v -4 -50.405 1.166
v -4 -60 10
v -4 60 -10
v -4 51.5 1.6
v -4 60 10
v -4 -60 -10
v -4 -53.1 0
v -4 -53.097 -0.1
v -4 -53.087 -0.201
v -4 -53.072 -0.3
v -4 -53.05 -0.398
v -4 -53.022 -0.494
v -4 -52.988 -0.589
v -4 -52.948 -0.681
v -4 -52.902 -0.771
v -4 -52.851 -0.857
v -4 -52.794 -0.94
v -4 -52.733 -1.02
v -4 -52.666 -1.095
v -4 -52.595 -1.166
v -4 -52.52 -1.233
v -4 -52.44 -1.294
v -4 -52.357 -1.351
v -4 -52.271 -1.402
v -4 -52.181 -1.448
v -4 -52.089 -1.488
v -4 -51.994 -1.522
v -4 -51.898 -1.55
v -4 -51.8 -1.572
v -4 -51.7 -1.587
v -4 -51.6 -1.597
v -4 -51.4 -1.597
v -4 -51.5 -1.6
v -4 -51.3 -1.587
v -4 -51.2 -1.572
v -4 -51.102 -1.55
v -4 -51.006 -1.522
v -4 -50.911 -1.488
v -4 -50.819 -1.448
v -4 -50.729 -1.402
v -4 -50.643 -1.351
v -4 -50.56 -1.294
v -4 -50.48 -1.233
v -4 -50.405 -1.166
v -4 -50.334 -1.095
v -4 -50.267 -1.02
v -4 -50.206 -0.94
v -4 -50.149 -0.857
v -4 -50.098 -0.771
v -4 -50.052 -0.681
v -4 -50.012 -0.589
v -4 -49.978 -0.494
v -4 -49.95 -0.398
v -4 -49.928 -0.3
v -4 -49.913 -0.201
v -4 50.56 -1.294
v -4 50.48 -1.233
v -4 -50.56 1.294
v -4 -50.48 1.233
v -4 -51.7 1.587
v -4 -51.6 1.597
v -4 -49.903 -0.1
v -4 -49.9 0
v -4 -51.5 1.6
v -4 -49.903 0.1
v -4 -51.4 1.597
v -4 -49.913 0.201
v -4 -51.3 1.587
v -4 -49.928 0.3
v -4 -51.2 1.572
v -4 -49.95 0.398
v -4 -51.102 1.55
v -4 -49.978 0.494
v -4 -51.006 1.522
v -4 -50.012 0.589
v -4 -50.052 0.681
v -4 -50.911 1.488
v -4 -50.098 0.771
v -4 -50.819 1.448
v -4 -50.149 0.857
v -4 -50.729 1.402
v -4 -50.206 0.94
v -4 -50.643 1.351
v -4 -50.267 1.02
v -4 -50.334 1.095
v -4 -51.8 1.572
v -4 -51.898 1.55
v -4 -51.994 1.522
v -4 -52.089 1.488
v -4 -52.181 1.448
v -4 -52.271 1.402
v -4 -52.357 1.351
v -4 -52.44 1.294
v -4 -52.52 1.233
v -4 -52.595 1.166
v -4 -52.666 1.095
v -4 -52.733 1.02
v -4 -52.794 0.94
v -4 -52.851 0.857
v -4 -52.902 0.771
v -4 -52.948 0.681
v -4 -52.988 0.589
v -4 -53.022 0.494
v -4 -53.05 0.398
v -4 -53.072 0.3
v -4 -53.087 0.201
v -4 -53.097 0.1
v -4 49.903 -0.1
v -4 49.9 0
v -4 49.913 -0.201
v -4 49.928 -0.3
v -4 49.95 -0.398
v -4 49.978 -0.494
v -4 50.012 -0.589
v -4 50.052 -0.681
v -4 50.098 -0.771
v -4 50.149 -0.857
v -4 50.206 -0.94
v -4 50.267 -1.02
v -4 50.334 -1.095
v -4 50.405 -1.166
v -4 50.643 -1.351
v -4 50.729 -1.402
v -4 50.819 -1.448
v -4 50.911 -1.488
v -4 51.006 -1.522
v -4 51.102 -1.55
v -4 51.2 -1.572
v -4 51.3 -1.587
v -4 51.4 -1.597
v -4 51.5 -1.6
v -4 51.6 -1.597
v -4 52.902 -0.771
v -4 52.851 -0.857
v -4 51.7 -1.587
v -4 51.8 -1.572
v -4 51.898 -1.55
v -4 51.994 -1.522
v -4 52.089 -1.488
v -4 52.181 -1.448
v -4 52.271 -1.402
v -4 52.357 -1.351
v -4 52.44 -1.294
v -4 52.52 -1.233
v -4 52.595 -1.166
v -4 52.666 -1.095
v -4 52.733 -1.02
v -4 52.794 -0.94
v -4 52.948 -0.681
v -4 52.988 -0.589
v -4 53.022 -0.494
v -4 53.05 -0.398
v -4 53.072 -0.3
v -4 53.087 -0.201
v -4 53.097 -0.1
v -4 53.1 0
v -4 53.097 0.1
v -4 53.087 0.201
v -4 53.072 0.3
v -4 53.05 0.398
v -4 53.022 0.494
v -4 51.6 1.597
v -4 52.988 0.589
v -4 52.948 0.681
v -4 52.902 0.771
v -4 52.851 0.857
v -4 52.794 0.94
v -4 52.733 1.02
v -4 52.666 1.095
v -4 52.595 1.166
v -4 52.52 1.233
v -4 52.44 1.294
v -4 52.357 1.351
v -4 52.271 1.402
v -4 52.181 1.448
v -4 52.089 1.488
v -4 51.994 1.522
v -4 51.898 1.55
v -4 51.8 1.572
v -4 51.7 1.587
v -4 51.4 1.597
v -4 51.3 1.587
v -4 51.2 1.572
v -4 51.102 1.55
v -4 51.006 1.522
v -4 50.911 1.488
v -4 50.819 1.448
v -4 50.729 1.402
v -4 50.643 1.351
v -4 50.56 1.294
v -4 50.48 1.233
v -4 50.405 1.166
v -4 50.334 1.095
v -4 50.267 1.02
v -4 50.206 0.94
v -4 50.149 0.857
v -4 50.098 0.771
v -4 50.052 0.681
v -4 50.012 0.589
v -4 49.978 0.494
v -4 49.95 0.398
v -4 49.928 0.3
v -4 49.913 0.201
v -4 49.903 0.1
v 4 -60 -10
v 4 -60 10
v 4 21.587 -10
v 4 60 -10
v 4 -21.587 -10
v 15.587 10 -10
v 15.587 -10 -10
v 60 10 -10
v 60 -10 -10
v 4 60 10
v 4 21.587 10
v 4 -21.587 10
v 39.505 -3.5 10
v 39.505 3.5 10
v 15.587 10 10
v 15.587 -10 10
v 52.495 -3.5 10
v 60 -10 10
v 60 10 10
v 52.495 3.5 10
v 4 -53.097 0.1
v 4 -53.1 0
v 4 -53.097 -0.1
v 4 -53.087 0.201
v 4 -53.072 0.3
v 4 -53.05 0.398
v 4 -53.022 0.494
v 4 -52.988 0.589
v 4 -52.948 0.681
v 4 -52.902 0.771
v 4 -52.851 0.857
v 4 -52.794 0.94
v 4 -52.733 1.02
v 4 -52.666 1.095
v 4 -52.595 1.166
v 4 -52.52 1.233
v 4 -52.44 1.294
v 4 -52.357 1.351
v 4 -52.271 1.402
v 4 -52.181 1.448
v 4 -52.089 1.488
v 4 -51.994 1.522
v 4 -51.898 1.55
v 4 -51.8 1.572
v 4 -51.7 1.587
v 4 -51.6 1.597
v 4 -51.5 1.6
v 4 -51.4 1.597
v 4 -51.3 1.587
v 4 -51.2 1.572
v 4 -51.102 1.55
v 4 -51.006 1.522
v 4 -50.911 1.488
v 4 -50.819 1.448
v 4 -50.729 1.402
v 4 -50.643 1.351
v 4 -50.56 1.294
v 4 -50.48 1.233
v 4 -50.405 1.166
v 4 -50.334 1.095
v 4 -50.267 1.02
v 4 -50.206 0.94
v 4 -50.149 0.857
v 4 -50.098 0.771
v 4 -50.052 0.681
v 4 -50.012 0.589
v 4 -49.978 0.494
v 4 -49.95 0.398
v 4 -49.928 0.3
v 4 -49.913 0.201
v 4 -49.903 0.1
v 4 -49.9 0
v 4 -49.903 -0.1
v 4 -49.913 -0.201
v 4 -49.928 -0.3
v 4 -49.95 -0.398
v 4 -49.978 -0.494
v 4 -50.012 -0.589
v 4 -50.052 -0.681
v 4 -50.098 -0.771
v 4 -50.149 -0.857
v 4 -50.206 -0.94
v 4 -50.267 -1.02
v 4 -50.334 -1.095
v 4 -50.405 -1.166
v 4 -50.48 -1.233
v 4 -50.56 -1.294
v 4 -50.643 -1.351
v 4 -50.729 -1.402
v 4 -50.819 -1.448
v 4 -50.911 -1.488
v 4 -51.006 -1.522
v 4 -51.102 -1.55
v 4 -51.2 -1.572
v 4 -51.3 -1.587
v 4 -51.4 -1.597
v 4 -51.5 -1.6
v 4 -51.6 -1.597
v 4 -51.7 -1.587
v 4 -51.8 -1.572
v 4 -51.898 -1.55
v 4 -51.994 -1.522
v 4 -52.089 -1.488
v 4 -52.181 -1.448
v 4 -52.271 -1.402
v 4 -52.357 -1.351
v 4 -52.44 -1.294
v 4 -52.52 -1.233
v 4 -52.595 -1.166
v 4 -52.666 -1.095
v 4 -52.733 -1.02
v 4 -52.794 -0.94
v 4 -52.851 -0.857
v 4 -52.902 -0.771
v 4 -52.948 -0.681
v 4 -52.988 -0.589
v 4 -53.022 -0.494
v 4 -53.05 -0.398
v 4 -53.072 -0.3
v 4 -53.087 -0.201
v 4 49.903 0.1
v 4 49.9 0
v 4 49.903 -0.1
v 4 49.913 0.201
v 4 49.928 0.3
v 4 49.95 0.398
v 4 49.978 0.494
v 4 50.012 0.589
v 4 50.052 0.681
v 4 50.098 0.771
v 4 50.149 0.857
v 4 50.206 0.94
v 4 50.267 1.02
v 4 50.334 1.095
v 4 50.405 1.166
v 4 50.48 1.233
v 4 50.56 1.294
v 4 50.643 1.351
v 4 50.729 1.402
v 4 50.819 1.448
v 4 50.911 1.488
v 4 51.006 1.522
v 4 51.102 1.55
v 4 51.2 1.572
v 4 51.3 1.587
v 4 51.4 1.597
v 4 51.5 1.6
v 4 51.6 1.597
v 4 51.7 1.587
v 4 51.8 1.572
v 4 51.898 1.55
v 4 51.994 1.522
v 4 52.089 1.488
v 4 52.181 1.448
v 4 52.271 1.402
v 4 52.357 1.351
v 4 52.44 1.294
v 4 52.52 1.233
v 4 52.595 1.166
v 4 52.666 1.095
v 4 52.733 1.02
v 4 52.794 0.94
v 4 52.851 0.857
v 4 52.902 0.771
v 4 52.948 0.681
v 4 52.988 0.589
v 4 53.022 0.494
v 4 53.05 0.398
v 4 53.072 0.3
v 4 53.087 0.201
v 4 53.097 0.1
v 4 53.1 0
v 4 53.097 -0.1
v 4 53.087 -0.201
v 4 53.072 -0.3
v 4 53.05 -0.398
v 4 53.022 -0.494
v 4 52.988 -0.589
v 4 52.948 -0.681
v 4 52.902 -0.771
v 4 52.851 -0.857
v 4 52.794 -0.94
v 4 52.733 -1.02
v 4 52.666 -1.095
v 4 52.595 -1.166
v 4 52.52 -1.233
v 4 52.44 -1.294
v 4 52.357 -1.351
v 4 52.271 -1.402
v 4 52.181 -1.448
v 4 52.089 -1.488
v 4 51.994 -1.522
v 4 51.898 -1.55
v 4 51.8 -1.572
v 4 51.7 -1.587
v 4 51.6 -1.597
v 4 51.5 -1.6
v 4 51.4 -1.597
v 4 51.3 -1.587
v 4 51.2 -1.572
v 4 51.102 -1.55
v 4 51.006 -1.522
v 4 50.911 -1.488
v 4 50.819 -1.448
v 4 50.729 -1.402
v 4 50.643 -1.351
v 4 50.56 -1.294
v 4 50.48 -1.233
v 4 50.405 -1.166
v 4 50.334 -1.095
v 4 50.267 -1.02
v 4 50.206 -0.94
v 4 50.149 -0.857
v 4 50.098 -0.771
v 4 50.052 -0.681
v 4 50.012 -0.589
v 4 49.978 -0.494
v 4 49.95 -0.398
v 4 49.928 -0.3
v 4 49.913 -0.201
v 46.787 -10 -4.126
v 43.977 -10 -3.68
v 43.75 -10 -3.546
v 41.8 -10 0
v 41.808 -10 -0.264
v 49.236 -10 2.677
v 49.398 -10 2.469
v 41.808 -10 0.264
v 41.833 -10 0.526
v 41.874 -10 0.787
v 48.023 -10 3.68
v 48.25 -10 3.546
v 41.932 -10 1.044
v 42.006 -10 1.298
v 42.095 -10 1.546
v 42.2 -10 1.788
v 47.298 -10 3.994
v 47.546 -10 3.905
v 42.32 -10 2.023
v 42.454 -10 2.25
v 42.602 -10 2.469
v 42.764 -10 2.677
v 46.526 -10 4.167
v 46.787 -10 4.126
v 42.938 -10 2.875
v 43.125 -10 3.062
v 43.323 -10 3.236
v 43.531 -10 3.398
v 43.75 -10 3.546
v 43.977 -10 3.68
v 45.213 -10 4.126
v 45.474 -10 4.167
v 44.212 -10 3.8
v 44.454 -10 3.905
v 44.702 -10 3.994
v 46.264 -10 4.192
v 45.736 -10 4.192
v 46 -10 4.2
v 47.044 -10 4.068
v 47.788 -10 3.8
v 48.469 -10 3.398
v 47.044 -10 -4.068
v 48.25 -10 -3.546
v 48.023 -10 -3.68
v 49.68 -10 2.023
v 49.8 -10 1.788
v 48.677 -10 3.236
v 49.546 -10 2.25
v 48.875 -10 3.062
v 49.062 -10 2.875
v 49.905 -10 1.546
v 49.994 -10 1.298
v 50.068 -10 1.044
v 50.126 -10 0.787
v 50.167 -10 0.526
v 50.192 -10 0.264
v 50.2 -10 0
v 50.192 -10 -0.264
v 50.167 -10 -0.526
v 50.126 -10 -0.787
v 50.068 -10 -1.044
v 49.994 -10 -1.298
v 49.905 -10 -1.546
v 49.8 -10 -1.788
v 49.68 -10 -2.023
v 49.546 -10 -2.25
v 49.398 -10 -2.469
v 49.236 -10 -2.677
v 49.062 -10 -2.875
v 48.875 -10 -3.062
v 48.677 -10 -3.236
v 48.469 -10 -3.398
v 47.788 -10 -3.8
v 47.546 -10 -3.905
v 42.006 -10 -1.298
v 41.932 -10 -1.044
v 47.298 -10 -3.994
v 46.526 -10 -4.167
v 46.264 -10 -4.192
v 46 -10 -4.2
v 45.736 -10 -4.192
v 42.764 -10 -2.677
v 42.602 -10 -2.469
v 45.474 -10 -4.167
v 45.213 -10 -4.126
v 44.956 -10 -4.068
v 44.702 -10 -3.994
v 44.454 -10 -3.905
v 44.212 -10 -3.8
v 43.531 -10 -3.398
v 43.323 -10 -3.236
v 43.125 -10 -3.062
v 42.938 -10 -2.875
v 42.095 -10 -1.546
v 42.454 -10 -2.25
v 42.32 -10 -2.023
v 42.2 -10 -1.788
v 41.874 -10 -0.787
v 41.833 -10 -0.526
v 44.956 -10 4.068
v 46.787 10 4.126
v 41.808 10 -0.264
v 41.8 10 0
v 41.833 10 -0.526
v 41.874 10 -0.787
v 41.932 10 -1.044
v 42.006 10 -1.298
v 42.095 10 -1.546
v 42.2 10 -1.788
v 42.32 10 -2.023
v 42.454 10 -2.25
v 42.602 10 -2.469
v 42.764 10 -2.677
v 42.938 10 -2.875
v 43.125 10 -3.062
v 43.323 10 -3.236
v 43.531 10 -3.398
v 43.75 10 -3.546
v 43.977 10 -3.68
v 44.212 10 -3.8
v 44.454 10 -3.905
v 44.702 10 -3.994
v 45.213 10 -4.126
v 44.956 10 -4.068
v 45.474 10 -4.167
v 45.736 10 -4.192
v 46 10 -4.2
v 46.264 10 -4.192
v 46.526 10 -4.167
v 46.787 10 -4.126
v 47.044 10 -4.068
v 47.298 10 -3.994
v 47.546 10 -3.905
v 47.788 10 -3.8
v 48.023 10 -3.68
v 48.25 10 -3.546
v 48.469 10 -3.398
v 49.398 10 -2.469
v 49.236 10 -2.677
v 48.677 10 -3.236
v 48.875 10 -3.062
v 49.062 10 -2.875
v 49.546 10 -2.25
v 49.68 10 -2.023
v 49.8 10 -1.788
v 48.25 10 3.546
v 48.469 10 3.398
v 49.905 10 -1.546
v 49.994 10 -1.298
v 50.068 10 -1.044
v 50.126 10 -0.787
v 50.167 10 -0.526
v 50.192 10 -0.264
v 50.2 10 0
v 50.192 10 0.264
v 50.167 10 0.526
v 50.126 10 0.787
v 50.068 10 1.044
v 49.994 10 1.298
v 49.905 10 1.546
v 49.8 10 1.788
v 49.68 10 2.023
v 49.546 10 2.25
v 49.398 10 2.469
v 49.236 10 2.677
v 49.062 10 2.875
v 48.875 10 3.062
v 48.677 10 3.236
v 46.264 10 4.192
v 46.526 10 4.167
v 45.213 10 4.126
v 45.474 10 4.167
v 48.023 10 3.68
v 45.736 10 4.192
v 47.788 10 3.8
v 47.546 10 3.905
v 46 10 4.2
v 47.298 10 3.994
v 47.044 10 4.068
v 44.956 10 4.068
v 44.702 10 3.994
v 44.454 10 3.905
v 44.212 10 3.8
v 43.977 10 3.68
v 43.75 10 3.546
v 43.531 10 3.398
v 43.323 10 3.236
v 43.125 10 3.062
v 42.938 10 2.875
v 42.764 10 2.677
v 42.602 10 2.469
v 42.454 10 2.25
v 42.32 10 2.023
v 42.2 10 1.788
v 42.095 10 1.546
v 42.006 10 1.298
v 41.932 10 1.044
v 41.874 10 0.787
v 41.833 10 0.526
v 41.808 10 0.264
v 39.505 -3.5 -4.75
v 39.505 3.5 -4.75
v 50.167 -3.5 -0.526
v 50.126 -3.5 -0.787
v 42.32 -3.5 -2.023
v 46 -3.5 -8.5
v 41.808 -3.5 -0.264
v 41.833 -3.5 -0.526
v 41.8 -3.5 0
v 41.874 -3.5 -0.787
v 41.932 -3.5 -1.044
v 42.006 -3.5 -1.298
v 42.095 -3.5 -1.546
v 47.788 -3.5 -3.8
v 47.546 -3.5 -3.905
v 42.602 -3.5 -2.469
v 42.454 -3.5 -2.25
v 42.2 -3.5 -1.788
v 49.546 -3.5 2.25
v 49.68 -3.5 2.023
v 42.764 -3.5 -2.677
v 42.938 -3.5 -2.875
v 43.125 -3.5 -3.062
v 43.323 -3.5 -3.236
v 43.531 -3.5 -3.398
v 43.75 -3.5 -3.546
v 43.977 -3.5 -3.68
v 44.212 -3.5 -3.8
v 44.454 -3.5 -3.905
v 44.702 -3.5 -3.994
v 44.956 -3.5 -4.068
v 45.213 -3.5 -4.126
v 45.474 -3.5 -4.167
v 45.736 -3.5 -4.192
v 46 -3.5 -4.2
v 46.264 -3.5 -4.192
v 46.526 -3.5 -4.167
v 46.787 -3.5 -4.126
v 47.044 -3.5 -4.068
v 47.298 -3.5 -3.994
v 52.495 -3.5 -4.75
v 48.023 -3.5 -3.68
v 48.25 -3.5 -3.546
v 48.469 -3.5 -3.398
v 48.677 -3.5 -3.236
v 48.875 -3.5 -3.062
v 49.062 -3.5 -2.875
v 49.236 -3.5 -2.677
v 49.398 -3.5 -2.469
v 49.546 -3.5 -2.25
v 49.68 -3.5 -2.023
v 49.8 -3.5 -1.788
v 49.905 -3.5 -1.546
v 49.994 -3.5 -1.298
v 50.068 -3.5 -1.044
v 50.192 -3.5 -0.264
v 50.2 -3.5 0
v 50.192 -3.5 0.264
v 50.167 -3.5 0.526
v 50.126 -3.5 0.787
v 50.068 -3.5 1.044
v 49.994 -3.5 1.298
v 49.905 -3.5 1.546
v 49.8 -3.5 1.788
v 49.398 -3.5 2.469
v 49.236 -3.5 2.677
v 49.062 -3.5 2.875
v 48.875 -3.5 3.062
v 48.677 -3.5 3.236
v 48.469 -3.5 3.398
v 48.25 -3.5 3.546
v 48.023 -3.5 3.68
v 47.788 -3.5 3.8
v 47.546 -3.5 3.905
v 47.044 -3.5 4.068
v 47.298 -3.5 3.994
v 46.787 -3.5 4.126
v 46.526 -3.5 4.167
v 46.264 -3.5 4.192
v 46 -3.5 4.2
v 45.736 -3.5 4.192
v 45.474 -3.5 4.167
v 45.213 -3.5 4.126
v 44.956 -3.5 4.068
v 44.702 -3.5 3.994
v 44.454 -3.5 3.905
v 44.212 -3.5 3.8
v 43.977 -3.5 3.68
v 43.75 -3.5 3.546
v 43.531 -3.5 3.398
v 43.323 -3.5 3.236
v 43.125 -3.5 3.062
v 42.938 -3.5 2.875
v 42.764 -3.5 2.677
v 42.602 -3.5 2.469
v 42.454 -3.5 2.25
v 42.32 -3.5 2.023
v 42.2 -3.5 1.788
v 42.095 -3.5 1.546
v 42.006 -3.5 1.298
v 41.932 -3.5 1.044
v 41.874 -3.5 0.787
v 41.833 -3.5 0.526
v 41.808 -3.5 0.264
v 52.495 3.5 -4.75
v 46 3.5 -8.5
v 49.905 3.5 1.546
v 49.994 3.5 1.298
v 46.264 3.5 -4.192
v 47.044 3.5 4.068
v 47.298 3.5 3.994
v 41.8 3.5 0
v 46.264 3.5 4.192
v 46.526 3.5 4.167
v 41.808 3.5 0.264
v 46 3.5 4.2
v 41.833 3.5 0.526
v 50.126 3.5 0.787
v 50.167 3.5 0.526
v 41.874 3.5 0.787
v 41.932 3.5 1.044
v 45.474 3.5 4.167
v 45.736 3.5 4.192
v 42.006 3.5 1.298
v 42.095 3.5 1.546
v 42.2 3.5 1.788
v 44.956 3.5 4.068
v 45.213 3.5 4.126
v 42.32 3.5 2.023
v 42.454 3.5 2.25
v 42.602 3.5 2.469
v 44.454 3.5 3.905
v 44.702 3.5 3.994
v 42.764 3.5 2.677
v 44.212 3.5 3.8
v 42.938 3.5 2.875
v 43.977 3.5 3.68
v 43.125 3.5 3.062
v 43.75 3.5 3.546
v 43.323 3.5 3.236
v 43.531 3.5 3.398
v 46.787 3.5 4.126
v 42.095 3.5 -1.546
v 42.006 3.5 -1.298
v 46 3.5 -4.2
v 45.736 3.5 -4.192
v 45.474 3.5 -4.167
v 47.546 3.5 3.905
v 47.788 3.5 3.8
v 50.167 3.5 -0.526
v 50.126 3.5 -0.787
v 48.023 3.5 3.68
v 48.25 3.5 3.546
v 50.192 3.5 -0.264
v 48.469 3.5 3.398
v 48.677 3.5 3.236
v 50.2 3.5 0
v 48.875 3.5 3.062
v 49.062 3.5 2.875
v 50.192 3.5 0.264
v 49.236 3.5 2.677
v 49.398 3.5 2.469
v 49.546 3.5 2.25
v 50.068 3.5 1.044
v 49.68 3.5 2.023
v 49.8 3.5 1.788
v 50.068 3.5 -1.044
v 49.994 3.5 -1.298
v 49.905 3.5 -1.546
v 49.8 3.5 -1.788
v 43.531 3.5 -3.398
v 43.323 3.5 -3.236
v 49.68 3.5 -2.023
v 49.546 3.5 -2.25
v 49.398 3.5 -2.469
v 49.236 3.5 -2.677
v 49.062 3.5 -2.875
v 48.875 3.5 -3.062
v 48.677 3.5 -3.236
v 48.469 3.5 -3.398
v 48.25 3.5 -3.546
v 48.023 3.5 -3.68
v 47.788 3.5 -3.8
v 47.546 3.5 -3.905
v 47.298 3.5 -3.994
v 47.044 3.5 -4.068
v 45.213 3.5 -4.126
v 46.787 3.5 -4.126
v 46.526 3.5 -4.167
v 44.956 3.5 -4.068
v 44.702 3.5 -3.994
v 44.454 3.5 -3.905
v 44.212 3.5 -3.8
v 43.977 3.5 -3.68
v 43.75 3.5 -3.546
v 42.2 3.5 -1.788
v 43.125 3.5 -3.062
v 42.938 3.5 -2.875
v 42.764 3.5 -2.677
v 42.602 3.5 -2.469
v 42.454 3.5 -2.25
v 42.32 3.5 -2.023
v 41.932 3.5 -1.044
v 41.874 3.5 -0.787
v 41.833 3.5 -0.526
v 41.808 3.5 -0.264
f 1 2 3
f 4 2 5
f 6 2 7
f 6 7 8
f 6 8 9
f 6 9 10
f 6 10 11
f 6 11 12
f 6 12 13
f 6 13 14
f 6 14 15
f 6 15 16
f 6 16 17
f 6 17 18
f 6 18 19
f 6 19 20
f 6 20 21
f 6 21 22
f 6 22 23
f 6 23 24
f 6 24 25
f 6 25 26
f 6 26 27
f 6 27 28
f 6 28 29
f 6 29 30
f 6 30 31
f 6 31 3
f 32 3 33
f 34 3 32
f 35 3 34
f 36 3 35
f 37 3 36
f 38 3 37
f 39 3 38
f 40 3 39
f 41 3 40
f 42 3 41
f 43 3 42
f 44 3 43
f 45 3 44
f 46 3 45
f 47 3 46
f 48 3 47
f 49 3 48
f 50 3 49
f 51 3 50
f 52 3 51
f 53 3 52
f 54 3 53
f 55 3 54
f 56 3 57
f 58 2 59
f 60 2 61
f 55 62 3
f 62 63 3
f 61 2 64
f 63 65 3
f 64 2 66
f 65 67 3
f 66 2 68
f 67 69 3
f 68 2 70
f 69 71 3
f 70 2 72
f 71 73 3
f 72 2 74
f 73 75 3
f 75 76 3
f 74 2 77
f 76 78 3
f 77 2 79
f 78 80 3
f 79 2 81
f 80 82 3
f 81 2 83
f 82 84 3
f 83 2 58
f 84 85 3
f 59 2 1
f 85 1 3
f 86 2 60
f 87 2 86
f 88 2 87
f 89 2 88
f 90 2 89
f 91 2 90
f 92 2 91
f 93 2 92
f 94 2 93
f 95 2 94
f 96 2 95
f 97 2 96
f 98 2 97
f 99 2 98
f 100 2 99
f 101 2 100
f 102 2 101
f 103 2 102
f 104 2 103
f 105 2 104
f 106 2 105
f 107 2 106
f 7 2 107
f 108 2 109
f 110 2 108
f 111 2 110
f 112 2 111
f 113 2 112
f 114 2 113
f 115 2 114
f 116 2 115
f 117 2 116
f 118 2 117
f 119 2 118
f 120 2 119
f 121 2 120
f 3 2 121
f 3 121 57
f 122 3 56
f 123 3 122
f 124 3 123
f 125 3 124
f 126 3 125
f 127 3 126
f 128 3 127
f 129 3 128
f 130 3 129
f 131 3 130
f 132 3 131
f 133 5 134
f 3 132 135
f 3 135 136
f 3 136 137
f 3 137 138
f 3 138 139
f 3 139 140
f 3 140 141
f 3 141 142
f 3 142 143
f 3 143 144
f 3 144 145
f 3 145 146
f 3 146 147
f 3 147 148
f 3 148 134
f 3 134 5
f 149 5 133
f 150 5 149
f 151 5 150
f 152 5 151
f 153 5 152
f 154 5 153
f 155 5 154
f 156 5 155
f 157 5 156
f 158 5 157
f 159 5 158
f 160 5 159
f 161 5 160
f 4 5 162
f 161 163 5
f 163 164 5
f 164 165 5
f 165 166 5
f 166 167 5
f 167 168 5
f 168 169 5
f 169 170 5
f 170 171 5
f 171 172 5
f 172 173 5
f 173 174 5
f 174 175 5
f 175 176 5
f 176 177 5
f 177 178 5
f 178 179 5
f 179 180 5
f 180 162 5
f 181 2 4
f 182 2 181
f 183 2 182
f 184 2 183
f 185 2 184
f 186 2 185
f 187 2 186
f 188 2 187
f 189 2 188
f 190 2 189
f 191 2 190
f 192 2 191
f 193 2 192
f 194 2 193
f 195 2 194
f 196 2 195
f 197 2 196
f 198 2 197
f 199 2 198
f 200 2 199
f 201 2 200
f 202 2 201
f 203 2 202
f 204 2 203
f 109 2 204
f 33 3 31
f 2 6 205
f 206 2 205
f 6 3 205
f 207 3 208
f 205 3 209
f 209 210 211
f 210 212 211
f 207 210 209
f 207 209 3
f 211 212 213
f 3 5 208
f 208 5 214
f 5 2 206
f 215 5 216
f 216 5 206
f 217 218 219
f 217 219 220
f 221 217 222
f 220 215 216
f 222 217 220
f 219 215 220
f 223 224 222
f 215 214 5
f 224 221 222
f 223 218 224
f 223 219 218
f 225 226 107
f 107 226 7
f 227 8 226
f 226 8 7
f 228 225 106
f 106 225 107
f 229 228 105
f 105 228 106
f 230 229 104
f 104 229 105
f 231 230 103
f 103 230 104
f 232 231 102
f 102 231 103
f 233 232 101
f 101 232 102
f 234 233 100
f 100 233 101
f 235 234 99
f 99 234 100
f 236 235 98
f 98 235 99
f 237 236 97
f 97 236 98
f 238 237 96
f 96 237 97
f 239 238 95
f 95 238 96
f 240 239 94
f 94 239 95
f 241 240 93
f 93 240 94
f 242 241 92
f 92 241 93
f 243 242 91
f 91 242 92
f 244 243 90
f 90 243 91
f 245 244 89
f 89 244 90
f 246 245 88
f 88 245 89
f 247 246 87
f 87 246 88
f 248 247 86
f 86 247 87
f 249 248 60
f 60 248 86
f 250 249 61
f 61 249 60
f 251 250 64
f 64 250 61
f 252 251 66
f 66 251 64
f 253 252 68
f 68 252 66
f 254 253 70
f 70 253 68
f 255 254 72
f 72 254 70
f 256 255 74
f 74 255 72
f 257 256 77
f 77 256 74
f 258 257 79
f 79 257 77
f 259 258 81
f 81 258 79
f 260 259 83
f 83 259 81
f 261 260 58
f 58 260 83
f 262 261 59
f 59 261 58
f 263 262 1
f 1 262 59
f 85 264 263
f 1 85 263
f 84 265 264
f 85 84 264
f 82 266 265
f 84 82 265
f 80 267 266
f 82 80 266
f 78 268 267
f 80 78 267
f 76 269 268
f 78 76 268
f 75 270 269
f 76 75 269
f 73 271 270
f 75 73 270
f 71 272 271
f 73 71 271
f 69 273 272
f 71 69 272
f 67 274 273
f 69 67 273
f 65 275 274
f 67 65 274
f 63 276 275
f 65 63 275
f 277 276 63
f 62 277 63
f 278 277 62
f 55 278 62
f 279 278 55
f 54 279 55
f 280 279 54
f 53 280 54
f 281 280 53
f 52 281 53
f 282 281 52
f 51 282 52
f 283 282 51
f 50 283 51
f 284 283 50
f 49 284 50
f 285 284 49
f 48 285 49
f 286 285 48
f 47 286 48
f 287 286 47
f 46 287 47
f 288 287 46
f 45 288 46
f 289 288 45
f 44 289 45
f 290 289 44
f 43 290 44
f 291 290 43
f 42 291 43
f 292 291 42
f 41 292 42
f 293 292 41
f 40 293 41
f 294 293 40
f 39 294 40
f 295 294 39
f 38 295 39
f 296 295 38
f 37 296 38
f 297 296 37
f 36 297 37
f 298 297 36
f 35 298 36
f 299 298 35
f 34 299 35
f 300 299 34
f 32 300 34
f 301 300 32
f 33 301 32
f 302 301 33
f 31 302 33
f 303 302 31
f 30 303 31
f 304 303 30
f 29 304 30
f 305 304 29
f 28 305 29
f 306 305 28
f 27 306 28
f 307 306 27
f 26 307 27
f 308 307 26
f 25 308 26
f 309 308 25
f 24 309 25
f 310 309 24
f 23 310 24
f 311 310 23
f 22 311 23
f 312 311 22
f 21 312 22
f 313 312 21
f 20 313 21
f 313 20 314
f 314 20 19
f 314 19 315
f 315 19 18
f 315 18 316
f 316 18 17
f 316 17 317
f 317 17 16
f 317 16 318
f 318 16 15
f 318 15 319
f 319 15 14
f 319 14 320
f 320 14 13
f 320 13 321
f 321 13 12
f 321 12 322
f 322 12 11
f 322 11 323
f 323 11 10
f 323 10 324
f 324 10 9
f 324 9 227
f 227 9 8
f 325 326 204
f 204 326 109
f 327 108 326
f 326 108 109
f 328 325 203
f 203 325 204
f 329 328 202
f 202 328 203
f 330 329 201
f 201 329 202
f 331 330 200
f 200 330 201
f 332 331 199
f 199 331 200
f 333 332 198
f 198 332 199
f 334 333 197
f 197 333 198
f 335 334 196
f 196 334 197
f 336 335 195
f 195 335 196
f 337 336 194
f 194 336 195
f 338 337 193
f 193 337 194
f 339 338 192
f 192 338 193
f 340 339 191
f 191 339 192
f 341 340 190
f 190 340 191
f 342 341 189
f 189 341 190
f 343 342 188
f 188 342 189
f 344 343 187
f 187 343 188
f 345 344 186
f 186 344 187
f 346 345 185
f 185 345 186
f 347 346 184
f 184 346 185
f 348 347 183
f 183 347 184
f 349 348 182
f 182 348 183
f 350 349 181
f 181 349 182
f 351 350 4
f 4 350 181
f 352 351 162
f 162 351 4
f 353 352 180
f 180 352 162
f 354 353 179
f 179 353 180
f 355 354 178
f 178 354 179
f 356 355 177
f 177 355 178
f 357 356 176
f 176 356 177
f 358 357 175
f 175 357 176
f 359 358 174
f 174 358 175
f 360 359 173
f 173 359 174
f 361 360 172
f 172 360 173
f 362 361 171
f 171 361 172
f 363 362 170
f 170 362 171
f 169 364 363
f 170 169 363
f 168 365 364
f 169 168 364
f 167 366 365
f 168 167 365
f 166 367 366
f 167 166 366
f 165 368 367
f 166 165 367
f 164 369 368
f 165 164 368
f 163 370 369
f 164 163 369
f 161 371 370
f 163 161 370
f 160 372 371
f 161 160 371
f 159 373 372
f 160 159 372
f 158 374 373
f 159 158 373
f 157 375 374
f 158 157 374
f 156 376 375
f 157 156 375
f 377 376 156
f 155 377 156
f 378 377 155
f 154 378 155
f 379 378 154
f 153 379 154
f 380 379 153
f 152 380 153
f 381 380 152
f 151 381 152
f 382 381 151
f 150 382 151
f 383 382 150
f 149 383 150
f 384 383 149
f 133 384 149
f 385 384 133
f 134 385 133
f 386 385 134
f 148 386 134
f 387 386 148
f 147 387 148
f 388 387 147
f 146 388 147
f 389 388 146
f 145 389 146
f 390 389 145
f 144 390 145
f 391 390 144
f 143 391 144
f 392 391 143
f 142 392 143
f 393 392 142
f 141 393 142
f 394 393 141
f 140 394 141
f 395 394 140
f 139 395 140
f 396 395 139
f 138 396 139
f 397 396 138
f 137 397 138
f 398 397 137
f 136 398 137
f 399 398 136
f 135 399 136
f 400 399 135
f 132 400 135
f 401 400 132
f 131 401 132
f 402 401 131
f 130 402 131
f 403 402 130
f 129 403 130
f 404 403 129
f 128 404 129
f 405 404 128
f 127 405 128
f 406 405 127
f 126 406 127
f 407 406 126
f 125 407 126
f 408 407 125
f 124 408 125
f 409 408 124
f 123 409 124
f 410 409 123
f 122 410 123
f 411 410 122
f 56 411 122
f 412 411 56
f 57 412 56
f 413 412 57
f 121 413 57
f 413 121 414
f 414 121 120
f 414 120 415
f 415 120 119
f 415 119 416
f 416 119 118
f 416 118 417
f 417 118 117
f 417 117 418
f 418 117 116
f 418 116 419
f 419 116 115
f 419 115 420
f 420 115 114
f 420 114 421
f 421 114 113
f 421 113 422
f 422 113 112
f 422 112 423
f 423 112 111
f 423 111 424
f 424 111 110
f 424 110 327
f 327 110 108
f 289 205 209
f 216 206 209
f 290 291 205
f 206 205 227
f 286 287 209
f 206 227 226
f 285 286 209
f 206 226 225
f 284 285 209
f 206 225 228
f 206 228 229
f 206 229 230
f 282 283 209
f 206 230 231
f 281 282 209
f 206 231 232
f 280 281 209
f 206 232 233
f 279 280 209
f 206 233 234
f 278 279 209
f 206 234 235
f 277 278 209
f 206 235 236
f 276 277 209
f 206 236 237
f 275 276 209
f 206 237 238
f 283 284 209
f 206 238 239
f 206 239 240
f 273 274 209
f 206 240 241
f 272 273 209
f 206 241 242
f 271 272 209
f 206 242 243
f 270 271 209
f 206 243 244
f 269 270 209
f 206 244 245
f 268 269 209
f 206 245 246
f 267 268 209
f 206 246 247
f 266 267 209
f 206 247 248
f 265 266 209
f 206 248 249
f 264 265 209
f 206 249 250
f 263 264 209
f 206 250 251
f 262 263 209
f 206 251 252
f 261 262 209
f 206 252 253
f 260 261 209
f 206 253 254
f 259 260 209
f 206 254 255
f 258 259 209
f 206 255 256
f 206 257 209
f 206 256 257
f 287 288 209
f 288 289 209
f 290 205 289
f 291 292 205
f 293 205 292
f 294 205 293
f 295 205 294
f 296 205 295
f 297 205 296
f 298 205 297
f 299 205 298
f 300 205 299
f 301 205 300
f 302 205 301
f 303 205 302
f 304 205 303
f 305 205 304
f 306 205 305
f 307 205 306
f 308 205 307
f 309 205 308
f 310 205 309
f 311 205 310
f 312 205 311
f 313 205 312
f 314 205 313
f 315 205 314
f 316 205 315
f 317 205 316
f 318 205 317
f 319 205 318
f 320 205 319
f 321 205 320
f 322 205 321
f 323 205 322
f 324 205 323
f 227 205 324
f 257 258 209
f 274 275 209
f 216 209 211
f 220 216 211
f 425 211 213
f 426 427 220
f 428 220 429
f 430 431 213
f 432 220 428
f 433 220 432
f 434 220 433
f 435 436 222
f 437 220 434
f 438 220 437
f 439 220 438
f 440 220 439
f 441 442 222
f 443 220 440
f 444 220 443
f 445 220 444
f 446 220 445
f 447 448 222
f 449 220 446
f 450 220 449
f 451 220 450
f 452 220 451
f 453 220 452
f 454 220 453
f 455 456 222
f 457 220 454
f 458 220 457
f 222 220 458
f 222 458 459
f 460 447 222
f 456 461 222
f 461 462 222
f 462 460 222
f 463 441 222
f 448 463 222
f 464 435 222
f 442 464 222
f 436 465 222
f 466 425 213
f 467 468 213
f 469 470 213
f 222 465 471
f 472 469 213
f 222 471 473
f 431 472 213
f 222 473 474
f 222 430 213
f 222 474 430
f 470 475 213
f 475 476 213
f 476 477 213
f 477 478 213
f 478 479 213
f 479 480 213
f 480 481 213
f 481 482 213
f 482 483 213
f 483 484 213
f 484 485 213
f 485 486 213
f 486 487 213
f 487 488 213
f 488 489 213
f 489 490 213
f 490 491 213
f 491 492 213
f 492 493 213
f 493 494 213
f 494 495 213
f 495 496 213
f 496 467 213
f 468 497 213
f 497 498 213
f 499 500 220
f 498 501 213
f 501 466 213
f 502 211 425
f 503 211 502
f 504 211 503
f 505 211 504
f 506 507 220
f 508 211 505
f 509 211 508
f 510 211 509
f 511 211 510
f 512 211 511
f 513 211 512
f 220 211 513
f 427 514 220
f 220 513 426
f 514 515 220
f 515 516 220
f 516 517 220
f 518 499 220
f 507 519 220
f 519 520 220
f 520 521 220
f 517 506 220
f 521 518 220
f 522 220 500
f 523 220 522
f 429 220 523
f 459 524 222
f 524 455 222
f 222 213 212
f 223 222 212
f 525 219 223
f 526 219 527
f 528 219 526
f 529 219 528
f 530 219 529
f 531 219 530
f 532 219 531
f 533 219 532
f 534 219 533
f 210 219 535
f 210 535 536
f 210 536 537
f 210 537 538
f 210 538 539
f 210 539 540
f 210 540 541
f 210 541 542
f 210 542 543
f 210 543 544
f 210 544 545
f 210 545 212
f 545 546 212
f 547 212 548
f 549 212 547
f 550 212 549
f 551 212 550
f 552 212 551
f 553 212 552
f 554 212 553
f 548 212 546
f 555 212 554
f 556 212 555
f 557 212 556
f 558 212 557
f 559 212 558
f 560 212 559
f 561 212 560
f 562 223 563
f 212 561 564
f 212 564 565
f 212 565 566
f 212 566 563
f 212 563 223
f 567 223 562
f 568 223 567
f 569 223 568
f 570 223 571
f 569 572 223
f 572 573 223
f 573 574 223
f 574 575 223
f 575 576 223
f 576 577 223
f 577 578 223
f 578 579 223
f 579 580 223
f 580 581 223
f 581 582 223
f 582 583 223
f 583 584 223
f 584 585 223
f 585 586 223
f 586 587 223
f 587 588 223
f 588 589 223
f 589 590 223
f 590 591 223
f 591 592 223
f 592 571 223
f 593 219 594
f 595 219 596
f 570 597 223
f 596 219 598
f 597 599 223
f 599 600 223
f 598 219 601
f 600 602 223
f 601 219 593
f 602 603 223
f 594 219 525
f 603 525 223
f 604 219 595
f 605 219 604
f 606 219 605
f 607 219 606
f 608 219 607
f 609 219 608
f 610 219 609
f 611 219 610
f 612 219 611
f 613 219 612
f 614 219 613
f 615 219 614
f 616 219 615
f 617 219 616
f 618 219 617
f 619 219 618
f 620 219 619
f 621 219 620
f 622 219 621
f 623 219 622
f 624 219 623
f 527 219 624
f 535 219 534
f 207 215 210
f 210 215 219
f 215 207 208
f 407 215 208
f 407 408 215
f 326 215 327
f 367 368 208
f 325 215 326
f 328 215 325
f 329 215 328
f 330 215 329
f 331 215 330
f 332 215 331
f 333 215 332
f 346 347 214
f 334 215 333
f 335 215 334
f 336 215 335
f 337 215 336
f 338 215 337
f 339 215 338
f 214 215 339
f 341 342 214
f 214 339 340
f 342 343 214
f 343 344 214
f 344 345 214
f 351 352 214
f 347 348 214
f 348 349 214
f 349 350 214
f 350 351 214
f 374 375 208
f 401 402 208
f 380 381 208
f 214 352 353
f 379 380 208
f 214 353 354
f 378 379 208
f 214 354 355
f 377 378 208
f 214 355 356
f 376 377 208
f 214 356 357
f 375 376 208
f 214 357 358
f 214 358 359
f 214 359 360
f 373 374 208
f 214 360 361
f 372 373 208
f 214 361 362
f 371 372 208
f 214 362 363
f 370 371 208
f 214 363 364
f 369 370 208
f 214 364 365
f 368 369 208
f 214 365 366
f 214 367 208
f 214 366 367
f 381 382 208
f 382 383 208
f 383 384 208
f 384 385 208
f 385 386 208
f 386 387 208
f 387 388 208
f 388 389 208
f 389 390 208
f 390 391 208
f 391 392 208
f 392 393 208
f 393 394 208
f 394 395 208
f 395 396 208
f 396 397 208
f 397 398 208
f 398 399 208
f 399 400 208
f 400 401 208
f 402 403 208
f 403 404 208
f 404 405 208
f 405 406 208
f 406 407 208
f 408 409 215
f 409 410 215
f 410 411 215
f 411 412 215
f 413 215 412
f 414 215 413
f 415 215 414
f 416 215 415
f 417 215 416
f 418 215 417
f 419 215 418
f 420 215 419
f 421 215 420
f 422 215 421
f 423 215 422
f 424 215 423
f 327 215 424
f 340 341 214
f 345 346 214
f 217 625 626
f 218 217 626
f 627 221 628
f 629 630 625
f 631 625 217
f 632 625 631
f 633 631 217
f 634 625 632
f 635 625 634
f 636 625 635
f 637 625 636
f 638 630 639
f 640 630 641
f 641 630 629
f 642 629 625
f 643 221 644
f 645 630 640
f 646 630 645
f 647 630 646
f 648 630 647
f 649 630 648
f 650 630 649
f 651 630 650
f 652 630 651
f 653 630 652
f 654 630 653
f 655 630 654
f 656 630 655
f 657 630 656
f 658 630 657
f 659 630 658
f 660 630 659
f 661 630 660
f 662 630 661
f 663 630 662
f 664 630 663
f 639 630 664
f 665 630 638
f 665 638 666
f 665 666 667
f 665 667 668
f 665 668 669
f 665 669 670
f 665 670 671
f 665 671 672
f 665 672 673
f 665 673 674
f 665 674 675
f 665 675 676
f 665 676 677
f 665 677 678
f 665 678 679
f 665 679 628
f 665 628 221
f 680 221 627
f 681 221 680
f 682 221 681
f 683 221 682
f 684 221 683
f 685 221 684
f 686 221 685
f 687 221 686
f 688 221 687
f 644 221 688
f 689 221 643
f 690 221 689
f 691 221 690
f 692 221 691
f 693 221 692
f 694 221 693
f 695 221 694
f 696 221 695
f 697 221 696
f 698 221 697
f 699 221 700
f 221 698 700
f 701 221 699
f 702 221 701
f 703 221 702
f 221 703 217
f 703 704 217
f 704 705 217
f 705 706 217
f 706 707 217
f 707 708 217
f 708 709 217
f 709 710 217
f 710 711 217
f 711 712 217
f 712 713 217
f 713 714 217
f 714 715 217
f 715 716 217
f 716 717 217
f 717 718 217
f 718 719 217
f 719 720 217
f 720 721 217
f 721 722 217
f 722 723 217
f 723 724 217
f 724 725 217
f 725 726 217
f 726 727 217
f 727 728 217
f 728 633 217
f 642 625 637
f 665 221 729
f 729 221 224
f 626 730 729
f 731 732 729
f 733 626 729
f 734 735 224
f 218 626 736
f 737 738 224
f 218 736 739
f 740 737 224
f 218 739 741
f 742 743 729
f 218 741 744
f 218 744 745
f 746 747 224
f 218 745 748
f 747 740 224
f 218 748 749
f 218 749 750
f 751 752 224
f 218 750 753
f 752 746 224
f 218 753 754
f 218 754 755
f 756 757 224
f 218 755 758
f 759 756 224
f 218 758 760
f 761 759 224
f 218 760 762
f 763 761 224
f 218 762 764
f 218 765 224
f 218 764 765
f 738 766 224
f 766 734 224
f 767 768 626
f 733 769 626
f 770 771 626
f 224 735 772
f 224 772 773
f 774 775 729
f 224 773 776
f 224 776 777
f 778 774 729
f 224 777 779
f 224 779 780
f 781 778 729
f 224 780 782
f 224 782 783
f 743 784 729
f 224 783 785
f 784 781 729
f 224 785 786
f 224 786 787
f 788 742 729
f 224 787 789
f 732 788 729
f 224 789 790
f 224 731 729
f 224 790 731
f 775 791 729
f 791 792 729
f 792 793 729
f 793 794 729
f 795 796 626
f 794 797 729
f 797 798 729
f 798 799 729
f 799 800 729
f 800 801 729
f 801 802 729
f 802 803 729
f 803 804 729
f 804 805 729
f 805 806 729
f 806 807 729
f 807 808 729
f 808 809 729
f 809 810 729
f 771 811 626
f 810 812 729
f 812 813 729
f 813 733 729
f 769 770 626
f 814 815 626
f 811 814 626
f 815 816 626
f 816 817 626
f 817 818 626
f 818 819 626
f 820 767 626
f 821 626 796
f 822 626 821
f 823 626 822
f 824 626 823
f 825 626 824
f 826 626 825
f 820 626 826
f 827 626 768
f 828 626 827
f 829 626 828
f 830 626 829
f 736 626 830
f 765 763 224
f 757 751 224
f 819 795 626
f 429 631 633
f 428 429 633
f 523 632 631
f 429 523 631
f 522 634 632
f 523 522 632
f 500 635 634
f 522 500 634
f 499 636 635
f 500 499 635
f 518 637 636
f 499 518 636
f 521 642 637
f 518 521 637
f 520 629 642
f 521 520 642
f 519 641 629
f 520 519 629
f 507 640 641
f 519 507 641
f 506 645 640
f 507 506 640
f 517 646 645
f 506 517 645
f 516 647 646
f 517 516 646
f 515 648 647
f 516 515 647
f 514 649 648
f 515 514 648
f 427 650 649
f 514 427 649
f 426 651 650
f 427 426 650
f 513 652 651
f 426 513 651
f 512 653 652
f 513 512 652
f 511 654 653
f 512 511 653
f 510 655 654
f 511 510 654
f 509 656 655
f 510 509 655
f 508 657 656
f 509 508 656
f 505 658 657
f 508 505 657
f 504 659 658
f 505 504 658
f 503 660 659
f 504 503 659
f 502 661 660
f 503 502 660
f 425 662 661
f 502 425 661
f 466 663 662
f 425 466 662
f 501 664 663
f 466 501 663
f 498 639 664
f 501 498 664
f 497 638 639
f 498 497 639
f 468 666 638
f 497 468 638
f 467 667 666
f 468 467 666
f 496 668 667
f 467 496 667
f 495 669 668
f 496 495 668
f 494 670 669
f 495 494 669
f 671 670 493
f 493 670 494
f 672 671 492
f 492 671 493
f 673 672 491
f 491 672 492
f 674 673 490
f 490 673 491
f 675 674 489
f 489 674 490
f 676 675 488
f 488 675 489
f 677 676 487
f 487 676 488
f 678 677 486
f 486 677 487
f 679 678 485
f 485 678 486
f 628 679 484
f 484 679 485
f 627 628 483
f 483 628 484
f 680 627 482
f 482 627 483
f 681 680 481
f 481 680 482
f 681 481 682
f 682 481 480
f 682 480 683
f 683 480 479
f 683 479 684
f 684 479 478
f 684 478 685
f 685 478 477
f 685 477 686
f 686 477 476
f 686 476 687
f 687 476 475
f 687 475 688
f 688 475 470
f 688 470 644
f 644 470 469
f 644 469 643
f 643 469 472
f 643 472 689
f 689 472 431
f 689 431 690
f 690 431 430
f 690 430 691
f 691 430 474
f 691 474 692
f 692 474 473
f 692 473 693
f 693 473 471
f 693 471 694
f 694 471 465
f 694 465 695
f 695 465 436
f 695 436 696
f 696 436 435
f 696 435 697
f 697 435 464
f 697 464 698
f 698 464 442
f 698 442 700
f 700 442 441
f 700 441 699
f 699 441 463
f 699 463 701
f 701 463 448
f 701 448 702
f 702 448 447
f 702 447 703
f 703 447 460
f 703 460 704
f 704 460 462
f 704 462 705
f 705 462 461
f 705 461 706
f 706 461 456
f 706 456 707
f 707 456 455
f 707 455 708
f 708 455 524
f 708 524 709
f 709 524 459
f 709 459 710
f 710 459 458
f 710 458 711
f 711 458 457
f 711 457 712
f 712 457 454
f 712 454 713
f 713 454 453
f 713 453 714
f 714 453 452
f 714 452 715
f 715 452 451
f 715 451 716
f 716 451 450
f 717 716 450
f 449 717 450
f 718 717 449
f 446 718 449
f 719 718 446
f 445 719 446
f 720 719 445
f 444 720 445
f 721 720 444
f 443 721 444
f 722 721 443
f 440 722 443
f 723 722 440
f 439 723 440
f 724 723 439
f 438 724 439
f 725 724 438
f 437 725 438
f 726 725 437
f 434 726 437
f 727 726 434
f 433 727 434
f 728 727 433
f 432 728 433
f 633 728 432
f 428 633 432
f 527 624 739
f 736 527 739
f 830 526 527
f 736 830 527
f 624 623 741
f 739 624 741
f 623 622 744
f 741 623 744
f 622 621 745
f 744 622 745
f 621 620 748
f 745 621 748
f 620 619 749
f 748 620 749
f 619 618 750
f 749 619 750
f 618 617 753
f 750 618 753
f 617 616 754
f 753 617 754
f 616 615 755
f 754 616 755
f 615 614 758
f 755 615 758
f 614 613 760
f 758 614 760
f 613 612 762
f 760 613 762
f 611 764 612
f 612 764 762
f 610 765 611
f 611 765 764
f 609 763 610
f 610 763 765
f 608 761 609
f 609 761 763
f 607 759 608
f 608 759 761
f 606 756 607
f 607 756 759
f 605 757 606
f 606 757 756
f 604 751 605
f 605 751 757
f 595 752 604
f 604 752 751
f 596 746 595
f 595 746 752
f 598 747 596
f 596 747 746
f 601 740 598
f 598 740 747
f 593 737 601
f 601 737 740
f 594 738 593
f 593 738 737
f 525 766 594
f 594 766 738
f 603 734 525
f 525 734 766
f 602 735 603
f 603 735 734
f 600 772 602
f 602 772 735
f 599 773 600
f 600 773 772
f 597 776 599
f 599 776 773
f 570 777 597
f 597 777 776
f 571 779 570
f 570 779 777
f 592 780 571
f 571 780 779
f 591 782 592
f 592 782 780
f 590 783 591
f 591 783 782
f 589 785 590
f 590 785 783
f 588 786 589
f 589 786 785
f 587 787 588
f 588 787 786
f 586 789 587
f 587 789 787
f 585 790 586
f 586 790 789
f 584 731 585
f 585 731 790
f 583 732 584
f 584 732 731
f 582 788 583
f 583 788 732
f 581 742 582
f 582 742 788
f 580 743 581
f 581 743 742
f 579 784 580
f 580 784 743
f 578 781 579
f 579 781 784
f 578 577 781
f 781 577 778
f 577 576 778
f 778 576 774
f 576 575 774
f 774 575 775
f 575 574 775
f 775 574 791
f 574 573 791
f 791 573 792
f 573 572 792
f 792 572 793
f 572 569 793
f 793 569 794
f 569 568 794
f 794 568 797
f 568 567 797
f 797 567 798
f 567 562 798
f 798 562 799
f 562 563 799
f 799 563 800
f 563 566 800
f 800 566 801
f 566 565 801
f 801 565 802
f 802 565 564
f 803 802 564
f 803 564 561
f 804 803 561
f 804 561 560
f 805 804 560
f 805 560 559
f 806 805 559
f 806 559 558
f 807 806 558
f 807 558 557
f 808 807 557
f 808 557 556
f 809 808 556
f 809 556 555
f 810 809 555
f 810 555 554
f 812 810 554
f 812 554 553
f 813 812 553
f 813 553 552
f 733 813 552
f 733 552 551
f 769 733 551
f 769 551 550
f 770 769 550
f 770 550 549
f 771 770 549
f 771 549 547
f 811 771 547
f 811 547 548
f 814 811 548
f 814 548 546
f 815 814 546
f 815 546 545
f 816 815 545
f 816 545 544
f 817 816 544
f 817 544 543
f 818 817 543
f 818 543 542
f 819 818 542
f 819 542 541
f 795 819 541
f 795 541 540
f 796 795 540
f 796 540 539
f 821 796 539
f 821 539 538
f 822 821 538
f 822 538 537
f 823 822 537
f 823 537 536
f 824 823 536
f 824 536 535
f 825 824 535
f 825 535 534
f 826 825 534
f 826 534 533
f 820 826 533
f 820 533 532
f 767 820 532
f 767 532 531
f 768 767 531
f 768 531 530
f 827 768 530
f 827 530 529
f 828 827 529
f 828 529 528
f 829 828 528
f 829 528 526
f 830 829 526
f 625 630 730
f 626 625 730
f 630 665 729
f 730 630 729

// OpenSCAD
///////////////////////////////////////////////////////////////////////////////
//                                                                           //
//                       MaduixaCNC - BCN Dynamics                           //
//                                                                           //
///////////////////////////////////////////////////////////////////////////////
//
// File: x-drive-train-CNC.scad
//
// Authors: Dani Díaz <dani@bcndynamics.com>,
//          Victor Sapena <victor@bcndynamics.com>,
//          Emili Sapena <emili@bcndynamics.com>
//
// Copyright (c) 2015 by the original authors.
//
// This file is part of MaduixaCNC.
// 
// MaduixaCNC is free: you can redistribute it and/or modify
// it under the terms of the GNU General Public License as published by
// the Free Software Foundation, either version 3 of the License, or
// (at your option) any later version.
// 
// MaduixaCNC is distributed in the hope that it will be useful,
// but WITHOUT ANY WARRANTY; without even the implied warranty of
// MERCHANTABILITY or FITNESS FOR A PARTICULAR PURPOSE.  See the
// GNU General Public License for more details.
// 
// You should have received a copy of the GNU General Public License
// along with MaduixaCNC.  If not, see <http://www.gnu.org/licenses/>.
//
// http://bcndynamics.com 
///////////////////////////////////////////////////////////////////////////////

///////////////////////////////////////////////////////////////////////////////
// Variables

aresta=20;
llarg=60;
distancia_forats=103;
canto_llarg=120;
gruix_agarre=8;

///////////////////////////////////////////////////////////////////////////////
// Main

difference(){
  union(){
    translate([llarg/2,0,0])
      cube([llarg,aresta,aresta],center=true);
      
    cube([gruix_agarre,canto_llarg,aresta],center=true);
  }

  translate([0,distancia_forats/2,0])
    rotate([0,90,0])
      cylinder(r=1.6,h=50,$fn=100,center=true);

  translate([0,-distancia_forats/2,0])
    rotate([0,90,0])
      cylinder(r=1.6,h=50,$fn=100,center=true);

  translate([46,0,0])
    rotate([90,0,0])
      cylinder(r=4.2,h=50,$fn=100,center=true);

  translate([46,0,9])
    rotate([90,90,0])
      hull(){
	cylinder(r=7.5,h=7,$fn=6,center=true);
	
	translate([10,0,0])
	  cylinder(r=7.5,h=7,$fn=6,center=true);
     }
}   

hull(){
  translate([20,0,0])
    cylinder(r=4,h=20,$fn=20,center=true);
    
  translate([0,20,0])
    cylinder(r=4,h=20,$fn=20,center=true);
    
  translate([0,-20,0])
    cylinder(r=4,h=20,$fn=20,center=true);

}
